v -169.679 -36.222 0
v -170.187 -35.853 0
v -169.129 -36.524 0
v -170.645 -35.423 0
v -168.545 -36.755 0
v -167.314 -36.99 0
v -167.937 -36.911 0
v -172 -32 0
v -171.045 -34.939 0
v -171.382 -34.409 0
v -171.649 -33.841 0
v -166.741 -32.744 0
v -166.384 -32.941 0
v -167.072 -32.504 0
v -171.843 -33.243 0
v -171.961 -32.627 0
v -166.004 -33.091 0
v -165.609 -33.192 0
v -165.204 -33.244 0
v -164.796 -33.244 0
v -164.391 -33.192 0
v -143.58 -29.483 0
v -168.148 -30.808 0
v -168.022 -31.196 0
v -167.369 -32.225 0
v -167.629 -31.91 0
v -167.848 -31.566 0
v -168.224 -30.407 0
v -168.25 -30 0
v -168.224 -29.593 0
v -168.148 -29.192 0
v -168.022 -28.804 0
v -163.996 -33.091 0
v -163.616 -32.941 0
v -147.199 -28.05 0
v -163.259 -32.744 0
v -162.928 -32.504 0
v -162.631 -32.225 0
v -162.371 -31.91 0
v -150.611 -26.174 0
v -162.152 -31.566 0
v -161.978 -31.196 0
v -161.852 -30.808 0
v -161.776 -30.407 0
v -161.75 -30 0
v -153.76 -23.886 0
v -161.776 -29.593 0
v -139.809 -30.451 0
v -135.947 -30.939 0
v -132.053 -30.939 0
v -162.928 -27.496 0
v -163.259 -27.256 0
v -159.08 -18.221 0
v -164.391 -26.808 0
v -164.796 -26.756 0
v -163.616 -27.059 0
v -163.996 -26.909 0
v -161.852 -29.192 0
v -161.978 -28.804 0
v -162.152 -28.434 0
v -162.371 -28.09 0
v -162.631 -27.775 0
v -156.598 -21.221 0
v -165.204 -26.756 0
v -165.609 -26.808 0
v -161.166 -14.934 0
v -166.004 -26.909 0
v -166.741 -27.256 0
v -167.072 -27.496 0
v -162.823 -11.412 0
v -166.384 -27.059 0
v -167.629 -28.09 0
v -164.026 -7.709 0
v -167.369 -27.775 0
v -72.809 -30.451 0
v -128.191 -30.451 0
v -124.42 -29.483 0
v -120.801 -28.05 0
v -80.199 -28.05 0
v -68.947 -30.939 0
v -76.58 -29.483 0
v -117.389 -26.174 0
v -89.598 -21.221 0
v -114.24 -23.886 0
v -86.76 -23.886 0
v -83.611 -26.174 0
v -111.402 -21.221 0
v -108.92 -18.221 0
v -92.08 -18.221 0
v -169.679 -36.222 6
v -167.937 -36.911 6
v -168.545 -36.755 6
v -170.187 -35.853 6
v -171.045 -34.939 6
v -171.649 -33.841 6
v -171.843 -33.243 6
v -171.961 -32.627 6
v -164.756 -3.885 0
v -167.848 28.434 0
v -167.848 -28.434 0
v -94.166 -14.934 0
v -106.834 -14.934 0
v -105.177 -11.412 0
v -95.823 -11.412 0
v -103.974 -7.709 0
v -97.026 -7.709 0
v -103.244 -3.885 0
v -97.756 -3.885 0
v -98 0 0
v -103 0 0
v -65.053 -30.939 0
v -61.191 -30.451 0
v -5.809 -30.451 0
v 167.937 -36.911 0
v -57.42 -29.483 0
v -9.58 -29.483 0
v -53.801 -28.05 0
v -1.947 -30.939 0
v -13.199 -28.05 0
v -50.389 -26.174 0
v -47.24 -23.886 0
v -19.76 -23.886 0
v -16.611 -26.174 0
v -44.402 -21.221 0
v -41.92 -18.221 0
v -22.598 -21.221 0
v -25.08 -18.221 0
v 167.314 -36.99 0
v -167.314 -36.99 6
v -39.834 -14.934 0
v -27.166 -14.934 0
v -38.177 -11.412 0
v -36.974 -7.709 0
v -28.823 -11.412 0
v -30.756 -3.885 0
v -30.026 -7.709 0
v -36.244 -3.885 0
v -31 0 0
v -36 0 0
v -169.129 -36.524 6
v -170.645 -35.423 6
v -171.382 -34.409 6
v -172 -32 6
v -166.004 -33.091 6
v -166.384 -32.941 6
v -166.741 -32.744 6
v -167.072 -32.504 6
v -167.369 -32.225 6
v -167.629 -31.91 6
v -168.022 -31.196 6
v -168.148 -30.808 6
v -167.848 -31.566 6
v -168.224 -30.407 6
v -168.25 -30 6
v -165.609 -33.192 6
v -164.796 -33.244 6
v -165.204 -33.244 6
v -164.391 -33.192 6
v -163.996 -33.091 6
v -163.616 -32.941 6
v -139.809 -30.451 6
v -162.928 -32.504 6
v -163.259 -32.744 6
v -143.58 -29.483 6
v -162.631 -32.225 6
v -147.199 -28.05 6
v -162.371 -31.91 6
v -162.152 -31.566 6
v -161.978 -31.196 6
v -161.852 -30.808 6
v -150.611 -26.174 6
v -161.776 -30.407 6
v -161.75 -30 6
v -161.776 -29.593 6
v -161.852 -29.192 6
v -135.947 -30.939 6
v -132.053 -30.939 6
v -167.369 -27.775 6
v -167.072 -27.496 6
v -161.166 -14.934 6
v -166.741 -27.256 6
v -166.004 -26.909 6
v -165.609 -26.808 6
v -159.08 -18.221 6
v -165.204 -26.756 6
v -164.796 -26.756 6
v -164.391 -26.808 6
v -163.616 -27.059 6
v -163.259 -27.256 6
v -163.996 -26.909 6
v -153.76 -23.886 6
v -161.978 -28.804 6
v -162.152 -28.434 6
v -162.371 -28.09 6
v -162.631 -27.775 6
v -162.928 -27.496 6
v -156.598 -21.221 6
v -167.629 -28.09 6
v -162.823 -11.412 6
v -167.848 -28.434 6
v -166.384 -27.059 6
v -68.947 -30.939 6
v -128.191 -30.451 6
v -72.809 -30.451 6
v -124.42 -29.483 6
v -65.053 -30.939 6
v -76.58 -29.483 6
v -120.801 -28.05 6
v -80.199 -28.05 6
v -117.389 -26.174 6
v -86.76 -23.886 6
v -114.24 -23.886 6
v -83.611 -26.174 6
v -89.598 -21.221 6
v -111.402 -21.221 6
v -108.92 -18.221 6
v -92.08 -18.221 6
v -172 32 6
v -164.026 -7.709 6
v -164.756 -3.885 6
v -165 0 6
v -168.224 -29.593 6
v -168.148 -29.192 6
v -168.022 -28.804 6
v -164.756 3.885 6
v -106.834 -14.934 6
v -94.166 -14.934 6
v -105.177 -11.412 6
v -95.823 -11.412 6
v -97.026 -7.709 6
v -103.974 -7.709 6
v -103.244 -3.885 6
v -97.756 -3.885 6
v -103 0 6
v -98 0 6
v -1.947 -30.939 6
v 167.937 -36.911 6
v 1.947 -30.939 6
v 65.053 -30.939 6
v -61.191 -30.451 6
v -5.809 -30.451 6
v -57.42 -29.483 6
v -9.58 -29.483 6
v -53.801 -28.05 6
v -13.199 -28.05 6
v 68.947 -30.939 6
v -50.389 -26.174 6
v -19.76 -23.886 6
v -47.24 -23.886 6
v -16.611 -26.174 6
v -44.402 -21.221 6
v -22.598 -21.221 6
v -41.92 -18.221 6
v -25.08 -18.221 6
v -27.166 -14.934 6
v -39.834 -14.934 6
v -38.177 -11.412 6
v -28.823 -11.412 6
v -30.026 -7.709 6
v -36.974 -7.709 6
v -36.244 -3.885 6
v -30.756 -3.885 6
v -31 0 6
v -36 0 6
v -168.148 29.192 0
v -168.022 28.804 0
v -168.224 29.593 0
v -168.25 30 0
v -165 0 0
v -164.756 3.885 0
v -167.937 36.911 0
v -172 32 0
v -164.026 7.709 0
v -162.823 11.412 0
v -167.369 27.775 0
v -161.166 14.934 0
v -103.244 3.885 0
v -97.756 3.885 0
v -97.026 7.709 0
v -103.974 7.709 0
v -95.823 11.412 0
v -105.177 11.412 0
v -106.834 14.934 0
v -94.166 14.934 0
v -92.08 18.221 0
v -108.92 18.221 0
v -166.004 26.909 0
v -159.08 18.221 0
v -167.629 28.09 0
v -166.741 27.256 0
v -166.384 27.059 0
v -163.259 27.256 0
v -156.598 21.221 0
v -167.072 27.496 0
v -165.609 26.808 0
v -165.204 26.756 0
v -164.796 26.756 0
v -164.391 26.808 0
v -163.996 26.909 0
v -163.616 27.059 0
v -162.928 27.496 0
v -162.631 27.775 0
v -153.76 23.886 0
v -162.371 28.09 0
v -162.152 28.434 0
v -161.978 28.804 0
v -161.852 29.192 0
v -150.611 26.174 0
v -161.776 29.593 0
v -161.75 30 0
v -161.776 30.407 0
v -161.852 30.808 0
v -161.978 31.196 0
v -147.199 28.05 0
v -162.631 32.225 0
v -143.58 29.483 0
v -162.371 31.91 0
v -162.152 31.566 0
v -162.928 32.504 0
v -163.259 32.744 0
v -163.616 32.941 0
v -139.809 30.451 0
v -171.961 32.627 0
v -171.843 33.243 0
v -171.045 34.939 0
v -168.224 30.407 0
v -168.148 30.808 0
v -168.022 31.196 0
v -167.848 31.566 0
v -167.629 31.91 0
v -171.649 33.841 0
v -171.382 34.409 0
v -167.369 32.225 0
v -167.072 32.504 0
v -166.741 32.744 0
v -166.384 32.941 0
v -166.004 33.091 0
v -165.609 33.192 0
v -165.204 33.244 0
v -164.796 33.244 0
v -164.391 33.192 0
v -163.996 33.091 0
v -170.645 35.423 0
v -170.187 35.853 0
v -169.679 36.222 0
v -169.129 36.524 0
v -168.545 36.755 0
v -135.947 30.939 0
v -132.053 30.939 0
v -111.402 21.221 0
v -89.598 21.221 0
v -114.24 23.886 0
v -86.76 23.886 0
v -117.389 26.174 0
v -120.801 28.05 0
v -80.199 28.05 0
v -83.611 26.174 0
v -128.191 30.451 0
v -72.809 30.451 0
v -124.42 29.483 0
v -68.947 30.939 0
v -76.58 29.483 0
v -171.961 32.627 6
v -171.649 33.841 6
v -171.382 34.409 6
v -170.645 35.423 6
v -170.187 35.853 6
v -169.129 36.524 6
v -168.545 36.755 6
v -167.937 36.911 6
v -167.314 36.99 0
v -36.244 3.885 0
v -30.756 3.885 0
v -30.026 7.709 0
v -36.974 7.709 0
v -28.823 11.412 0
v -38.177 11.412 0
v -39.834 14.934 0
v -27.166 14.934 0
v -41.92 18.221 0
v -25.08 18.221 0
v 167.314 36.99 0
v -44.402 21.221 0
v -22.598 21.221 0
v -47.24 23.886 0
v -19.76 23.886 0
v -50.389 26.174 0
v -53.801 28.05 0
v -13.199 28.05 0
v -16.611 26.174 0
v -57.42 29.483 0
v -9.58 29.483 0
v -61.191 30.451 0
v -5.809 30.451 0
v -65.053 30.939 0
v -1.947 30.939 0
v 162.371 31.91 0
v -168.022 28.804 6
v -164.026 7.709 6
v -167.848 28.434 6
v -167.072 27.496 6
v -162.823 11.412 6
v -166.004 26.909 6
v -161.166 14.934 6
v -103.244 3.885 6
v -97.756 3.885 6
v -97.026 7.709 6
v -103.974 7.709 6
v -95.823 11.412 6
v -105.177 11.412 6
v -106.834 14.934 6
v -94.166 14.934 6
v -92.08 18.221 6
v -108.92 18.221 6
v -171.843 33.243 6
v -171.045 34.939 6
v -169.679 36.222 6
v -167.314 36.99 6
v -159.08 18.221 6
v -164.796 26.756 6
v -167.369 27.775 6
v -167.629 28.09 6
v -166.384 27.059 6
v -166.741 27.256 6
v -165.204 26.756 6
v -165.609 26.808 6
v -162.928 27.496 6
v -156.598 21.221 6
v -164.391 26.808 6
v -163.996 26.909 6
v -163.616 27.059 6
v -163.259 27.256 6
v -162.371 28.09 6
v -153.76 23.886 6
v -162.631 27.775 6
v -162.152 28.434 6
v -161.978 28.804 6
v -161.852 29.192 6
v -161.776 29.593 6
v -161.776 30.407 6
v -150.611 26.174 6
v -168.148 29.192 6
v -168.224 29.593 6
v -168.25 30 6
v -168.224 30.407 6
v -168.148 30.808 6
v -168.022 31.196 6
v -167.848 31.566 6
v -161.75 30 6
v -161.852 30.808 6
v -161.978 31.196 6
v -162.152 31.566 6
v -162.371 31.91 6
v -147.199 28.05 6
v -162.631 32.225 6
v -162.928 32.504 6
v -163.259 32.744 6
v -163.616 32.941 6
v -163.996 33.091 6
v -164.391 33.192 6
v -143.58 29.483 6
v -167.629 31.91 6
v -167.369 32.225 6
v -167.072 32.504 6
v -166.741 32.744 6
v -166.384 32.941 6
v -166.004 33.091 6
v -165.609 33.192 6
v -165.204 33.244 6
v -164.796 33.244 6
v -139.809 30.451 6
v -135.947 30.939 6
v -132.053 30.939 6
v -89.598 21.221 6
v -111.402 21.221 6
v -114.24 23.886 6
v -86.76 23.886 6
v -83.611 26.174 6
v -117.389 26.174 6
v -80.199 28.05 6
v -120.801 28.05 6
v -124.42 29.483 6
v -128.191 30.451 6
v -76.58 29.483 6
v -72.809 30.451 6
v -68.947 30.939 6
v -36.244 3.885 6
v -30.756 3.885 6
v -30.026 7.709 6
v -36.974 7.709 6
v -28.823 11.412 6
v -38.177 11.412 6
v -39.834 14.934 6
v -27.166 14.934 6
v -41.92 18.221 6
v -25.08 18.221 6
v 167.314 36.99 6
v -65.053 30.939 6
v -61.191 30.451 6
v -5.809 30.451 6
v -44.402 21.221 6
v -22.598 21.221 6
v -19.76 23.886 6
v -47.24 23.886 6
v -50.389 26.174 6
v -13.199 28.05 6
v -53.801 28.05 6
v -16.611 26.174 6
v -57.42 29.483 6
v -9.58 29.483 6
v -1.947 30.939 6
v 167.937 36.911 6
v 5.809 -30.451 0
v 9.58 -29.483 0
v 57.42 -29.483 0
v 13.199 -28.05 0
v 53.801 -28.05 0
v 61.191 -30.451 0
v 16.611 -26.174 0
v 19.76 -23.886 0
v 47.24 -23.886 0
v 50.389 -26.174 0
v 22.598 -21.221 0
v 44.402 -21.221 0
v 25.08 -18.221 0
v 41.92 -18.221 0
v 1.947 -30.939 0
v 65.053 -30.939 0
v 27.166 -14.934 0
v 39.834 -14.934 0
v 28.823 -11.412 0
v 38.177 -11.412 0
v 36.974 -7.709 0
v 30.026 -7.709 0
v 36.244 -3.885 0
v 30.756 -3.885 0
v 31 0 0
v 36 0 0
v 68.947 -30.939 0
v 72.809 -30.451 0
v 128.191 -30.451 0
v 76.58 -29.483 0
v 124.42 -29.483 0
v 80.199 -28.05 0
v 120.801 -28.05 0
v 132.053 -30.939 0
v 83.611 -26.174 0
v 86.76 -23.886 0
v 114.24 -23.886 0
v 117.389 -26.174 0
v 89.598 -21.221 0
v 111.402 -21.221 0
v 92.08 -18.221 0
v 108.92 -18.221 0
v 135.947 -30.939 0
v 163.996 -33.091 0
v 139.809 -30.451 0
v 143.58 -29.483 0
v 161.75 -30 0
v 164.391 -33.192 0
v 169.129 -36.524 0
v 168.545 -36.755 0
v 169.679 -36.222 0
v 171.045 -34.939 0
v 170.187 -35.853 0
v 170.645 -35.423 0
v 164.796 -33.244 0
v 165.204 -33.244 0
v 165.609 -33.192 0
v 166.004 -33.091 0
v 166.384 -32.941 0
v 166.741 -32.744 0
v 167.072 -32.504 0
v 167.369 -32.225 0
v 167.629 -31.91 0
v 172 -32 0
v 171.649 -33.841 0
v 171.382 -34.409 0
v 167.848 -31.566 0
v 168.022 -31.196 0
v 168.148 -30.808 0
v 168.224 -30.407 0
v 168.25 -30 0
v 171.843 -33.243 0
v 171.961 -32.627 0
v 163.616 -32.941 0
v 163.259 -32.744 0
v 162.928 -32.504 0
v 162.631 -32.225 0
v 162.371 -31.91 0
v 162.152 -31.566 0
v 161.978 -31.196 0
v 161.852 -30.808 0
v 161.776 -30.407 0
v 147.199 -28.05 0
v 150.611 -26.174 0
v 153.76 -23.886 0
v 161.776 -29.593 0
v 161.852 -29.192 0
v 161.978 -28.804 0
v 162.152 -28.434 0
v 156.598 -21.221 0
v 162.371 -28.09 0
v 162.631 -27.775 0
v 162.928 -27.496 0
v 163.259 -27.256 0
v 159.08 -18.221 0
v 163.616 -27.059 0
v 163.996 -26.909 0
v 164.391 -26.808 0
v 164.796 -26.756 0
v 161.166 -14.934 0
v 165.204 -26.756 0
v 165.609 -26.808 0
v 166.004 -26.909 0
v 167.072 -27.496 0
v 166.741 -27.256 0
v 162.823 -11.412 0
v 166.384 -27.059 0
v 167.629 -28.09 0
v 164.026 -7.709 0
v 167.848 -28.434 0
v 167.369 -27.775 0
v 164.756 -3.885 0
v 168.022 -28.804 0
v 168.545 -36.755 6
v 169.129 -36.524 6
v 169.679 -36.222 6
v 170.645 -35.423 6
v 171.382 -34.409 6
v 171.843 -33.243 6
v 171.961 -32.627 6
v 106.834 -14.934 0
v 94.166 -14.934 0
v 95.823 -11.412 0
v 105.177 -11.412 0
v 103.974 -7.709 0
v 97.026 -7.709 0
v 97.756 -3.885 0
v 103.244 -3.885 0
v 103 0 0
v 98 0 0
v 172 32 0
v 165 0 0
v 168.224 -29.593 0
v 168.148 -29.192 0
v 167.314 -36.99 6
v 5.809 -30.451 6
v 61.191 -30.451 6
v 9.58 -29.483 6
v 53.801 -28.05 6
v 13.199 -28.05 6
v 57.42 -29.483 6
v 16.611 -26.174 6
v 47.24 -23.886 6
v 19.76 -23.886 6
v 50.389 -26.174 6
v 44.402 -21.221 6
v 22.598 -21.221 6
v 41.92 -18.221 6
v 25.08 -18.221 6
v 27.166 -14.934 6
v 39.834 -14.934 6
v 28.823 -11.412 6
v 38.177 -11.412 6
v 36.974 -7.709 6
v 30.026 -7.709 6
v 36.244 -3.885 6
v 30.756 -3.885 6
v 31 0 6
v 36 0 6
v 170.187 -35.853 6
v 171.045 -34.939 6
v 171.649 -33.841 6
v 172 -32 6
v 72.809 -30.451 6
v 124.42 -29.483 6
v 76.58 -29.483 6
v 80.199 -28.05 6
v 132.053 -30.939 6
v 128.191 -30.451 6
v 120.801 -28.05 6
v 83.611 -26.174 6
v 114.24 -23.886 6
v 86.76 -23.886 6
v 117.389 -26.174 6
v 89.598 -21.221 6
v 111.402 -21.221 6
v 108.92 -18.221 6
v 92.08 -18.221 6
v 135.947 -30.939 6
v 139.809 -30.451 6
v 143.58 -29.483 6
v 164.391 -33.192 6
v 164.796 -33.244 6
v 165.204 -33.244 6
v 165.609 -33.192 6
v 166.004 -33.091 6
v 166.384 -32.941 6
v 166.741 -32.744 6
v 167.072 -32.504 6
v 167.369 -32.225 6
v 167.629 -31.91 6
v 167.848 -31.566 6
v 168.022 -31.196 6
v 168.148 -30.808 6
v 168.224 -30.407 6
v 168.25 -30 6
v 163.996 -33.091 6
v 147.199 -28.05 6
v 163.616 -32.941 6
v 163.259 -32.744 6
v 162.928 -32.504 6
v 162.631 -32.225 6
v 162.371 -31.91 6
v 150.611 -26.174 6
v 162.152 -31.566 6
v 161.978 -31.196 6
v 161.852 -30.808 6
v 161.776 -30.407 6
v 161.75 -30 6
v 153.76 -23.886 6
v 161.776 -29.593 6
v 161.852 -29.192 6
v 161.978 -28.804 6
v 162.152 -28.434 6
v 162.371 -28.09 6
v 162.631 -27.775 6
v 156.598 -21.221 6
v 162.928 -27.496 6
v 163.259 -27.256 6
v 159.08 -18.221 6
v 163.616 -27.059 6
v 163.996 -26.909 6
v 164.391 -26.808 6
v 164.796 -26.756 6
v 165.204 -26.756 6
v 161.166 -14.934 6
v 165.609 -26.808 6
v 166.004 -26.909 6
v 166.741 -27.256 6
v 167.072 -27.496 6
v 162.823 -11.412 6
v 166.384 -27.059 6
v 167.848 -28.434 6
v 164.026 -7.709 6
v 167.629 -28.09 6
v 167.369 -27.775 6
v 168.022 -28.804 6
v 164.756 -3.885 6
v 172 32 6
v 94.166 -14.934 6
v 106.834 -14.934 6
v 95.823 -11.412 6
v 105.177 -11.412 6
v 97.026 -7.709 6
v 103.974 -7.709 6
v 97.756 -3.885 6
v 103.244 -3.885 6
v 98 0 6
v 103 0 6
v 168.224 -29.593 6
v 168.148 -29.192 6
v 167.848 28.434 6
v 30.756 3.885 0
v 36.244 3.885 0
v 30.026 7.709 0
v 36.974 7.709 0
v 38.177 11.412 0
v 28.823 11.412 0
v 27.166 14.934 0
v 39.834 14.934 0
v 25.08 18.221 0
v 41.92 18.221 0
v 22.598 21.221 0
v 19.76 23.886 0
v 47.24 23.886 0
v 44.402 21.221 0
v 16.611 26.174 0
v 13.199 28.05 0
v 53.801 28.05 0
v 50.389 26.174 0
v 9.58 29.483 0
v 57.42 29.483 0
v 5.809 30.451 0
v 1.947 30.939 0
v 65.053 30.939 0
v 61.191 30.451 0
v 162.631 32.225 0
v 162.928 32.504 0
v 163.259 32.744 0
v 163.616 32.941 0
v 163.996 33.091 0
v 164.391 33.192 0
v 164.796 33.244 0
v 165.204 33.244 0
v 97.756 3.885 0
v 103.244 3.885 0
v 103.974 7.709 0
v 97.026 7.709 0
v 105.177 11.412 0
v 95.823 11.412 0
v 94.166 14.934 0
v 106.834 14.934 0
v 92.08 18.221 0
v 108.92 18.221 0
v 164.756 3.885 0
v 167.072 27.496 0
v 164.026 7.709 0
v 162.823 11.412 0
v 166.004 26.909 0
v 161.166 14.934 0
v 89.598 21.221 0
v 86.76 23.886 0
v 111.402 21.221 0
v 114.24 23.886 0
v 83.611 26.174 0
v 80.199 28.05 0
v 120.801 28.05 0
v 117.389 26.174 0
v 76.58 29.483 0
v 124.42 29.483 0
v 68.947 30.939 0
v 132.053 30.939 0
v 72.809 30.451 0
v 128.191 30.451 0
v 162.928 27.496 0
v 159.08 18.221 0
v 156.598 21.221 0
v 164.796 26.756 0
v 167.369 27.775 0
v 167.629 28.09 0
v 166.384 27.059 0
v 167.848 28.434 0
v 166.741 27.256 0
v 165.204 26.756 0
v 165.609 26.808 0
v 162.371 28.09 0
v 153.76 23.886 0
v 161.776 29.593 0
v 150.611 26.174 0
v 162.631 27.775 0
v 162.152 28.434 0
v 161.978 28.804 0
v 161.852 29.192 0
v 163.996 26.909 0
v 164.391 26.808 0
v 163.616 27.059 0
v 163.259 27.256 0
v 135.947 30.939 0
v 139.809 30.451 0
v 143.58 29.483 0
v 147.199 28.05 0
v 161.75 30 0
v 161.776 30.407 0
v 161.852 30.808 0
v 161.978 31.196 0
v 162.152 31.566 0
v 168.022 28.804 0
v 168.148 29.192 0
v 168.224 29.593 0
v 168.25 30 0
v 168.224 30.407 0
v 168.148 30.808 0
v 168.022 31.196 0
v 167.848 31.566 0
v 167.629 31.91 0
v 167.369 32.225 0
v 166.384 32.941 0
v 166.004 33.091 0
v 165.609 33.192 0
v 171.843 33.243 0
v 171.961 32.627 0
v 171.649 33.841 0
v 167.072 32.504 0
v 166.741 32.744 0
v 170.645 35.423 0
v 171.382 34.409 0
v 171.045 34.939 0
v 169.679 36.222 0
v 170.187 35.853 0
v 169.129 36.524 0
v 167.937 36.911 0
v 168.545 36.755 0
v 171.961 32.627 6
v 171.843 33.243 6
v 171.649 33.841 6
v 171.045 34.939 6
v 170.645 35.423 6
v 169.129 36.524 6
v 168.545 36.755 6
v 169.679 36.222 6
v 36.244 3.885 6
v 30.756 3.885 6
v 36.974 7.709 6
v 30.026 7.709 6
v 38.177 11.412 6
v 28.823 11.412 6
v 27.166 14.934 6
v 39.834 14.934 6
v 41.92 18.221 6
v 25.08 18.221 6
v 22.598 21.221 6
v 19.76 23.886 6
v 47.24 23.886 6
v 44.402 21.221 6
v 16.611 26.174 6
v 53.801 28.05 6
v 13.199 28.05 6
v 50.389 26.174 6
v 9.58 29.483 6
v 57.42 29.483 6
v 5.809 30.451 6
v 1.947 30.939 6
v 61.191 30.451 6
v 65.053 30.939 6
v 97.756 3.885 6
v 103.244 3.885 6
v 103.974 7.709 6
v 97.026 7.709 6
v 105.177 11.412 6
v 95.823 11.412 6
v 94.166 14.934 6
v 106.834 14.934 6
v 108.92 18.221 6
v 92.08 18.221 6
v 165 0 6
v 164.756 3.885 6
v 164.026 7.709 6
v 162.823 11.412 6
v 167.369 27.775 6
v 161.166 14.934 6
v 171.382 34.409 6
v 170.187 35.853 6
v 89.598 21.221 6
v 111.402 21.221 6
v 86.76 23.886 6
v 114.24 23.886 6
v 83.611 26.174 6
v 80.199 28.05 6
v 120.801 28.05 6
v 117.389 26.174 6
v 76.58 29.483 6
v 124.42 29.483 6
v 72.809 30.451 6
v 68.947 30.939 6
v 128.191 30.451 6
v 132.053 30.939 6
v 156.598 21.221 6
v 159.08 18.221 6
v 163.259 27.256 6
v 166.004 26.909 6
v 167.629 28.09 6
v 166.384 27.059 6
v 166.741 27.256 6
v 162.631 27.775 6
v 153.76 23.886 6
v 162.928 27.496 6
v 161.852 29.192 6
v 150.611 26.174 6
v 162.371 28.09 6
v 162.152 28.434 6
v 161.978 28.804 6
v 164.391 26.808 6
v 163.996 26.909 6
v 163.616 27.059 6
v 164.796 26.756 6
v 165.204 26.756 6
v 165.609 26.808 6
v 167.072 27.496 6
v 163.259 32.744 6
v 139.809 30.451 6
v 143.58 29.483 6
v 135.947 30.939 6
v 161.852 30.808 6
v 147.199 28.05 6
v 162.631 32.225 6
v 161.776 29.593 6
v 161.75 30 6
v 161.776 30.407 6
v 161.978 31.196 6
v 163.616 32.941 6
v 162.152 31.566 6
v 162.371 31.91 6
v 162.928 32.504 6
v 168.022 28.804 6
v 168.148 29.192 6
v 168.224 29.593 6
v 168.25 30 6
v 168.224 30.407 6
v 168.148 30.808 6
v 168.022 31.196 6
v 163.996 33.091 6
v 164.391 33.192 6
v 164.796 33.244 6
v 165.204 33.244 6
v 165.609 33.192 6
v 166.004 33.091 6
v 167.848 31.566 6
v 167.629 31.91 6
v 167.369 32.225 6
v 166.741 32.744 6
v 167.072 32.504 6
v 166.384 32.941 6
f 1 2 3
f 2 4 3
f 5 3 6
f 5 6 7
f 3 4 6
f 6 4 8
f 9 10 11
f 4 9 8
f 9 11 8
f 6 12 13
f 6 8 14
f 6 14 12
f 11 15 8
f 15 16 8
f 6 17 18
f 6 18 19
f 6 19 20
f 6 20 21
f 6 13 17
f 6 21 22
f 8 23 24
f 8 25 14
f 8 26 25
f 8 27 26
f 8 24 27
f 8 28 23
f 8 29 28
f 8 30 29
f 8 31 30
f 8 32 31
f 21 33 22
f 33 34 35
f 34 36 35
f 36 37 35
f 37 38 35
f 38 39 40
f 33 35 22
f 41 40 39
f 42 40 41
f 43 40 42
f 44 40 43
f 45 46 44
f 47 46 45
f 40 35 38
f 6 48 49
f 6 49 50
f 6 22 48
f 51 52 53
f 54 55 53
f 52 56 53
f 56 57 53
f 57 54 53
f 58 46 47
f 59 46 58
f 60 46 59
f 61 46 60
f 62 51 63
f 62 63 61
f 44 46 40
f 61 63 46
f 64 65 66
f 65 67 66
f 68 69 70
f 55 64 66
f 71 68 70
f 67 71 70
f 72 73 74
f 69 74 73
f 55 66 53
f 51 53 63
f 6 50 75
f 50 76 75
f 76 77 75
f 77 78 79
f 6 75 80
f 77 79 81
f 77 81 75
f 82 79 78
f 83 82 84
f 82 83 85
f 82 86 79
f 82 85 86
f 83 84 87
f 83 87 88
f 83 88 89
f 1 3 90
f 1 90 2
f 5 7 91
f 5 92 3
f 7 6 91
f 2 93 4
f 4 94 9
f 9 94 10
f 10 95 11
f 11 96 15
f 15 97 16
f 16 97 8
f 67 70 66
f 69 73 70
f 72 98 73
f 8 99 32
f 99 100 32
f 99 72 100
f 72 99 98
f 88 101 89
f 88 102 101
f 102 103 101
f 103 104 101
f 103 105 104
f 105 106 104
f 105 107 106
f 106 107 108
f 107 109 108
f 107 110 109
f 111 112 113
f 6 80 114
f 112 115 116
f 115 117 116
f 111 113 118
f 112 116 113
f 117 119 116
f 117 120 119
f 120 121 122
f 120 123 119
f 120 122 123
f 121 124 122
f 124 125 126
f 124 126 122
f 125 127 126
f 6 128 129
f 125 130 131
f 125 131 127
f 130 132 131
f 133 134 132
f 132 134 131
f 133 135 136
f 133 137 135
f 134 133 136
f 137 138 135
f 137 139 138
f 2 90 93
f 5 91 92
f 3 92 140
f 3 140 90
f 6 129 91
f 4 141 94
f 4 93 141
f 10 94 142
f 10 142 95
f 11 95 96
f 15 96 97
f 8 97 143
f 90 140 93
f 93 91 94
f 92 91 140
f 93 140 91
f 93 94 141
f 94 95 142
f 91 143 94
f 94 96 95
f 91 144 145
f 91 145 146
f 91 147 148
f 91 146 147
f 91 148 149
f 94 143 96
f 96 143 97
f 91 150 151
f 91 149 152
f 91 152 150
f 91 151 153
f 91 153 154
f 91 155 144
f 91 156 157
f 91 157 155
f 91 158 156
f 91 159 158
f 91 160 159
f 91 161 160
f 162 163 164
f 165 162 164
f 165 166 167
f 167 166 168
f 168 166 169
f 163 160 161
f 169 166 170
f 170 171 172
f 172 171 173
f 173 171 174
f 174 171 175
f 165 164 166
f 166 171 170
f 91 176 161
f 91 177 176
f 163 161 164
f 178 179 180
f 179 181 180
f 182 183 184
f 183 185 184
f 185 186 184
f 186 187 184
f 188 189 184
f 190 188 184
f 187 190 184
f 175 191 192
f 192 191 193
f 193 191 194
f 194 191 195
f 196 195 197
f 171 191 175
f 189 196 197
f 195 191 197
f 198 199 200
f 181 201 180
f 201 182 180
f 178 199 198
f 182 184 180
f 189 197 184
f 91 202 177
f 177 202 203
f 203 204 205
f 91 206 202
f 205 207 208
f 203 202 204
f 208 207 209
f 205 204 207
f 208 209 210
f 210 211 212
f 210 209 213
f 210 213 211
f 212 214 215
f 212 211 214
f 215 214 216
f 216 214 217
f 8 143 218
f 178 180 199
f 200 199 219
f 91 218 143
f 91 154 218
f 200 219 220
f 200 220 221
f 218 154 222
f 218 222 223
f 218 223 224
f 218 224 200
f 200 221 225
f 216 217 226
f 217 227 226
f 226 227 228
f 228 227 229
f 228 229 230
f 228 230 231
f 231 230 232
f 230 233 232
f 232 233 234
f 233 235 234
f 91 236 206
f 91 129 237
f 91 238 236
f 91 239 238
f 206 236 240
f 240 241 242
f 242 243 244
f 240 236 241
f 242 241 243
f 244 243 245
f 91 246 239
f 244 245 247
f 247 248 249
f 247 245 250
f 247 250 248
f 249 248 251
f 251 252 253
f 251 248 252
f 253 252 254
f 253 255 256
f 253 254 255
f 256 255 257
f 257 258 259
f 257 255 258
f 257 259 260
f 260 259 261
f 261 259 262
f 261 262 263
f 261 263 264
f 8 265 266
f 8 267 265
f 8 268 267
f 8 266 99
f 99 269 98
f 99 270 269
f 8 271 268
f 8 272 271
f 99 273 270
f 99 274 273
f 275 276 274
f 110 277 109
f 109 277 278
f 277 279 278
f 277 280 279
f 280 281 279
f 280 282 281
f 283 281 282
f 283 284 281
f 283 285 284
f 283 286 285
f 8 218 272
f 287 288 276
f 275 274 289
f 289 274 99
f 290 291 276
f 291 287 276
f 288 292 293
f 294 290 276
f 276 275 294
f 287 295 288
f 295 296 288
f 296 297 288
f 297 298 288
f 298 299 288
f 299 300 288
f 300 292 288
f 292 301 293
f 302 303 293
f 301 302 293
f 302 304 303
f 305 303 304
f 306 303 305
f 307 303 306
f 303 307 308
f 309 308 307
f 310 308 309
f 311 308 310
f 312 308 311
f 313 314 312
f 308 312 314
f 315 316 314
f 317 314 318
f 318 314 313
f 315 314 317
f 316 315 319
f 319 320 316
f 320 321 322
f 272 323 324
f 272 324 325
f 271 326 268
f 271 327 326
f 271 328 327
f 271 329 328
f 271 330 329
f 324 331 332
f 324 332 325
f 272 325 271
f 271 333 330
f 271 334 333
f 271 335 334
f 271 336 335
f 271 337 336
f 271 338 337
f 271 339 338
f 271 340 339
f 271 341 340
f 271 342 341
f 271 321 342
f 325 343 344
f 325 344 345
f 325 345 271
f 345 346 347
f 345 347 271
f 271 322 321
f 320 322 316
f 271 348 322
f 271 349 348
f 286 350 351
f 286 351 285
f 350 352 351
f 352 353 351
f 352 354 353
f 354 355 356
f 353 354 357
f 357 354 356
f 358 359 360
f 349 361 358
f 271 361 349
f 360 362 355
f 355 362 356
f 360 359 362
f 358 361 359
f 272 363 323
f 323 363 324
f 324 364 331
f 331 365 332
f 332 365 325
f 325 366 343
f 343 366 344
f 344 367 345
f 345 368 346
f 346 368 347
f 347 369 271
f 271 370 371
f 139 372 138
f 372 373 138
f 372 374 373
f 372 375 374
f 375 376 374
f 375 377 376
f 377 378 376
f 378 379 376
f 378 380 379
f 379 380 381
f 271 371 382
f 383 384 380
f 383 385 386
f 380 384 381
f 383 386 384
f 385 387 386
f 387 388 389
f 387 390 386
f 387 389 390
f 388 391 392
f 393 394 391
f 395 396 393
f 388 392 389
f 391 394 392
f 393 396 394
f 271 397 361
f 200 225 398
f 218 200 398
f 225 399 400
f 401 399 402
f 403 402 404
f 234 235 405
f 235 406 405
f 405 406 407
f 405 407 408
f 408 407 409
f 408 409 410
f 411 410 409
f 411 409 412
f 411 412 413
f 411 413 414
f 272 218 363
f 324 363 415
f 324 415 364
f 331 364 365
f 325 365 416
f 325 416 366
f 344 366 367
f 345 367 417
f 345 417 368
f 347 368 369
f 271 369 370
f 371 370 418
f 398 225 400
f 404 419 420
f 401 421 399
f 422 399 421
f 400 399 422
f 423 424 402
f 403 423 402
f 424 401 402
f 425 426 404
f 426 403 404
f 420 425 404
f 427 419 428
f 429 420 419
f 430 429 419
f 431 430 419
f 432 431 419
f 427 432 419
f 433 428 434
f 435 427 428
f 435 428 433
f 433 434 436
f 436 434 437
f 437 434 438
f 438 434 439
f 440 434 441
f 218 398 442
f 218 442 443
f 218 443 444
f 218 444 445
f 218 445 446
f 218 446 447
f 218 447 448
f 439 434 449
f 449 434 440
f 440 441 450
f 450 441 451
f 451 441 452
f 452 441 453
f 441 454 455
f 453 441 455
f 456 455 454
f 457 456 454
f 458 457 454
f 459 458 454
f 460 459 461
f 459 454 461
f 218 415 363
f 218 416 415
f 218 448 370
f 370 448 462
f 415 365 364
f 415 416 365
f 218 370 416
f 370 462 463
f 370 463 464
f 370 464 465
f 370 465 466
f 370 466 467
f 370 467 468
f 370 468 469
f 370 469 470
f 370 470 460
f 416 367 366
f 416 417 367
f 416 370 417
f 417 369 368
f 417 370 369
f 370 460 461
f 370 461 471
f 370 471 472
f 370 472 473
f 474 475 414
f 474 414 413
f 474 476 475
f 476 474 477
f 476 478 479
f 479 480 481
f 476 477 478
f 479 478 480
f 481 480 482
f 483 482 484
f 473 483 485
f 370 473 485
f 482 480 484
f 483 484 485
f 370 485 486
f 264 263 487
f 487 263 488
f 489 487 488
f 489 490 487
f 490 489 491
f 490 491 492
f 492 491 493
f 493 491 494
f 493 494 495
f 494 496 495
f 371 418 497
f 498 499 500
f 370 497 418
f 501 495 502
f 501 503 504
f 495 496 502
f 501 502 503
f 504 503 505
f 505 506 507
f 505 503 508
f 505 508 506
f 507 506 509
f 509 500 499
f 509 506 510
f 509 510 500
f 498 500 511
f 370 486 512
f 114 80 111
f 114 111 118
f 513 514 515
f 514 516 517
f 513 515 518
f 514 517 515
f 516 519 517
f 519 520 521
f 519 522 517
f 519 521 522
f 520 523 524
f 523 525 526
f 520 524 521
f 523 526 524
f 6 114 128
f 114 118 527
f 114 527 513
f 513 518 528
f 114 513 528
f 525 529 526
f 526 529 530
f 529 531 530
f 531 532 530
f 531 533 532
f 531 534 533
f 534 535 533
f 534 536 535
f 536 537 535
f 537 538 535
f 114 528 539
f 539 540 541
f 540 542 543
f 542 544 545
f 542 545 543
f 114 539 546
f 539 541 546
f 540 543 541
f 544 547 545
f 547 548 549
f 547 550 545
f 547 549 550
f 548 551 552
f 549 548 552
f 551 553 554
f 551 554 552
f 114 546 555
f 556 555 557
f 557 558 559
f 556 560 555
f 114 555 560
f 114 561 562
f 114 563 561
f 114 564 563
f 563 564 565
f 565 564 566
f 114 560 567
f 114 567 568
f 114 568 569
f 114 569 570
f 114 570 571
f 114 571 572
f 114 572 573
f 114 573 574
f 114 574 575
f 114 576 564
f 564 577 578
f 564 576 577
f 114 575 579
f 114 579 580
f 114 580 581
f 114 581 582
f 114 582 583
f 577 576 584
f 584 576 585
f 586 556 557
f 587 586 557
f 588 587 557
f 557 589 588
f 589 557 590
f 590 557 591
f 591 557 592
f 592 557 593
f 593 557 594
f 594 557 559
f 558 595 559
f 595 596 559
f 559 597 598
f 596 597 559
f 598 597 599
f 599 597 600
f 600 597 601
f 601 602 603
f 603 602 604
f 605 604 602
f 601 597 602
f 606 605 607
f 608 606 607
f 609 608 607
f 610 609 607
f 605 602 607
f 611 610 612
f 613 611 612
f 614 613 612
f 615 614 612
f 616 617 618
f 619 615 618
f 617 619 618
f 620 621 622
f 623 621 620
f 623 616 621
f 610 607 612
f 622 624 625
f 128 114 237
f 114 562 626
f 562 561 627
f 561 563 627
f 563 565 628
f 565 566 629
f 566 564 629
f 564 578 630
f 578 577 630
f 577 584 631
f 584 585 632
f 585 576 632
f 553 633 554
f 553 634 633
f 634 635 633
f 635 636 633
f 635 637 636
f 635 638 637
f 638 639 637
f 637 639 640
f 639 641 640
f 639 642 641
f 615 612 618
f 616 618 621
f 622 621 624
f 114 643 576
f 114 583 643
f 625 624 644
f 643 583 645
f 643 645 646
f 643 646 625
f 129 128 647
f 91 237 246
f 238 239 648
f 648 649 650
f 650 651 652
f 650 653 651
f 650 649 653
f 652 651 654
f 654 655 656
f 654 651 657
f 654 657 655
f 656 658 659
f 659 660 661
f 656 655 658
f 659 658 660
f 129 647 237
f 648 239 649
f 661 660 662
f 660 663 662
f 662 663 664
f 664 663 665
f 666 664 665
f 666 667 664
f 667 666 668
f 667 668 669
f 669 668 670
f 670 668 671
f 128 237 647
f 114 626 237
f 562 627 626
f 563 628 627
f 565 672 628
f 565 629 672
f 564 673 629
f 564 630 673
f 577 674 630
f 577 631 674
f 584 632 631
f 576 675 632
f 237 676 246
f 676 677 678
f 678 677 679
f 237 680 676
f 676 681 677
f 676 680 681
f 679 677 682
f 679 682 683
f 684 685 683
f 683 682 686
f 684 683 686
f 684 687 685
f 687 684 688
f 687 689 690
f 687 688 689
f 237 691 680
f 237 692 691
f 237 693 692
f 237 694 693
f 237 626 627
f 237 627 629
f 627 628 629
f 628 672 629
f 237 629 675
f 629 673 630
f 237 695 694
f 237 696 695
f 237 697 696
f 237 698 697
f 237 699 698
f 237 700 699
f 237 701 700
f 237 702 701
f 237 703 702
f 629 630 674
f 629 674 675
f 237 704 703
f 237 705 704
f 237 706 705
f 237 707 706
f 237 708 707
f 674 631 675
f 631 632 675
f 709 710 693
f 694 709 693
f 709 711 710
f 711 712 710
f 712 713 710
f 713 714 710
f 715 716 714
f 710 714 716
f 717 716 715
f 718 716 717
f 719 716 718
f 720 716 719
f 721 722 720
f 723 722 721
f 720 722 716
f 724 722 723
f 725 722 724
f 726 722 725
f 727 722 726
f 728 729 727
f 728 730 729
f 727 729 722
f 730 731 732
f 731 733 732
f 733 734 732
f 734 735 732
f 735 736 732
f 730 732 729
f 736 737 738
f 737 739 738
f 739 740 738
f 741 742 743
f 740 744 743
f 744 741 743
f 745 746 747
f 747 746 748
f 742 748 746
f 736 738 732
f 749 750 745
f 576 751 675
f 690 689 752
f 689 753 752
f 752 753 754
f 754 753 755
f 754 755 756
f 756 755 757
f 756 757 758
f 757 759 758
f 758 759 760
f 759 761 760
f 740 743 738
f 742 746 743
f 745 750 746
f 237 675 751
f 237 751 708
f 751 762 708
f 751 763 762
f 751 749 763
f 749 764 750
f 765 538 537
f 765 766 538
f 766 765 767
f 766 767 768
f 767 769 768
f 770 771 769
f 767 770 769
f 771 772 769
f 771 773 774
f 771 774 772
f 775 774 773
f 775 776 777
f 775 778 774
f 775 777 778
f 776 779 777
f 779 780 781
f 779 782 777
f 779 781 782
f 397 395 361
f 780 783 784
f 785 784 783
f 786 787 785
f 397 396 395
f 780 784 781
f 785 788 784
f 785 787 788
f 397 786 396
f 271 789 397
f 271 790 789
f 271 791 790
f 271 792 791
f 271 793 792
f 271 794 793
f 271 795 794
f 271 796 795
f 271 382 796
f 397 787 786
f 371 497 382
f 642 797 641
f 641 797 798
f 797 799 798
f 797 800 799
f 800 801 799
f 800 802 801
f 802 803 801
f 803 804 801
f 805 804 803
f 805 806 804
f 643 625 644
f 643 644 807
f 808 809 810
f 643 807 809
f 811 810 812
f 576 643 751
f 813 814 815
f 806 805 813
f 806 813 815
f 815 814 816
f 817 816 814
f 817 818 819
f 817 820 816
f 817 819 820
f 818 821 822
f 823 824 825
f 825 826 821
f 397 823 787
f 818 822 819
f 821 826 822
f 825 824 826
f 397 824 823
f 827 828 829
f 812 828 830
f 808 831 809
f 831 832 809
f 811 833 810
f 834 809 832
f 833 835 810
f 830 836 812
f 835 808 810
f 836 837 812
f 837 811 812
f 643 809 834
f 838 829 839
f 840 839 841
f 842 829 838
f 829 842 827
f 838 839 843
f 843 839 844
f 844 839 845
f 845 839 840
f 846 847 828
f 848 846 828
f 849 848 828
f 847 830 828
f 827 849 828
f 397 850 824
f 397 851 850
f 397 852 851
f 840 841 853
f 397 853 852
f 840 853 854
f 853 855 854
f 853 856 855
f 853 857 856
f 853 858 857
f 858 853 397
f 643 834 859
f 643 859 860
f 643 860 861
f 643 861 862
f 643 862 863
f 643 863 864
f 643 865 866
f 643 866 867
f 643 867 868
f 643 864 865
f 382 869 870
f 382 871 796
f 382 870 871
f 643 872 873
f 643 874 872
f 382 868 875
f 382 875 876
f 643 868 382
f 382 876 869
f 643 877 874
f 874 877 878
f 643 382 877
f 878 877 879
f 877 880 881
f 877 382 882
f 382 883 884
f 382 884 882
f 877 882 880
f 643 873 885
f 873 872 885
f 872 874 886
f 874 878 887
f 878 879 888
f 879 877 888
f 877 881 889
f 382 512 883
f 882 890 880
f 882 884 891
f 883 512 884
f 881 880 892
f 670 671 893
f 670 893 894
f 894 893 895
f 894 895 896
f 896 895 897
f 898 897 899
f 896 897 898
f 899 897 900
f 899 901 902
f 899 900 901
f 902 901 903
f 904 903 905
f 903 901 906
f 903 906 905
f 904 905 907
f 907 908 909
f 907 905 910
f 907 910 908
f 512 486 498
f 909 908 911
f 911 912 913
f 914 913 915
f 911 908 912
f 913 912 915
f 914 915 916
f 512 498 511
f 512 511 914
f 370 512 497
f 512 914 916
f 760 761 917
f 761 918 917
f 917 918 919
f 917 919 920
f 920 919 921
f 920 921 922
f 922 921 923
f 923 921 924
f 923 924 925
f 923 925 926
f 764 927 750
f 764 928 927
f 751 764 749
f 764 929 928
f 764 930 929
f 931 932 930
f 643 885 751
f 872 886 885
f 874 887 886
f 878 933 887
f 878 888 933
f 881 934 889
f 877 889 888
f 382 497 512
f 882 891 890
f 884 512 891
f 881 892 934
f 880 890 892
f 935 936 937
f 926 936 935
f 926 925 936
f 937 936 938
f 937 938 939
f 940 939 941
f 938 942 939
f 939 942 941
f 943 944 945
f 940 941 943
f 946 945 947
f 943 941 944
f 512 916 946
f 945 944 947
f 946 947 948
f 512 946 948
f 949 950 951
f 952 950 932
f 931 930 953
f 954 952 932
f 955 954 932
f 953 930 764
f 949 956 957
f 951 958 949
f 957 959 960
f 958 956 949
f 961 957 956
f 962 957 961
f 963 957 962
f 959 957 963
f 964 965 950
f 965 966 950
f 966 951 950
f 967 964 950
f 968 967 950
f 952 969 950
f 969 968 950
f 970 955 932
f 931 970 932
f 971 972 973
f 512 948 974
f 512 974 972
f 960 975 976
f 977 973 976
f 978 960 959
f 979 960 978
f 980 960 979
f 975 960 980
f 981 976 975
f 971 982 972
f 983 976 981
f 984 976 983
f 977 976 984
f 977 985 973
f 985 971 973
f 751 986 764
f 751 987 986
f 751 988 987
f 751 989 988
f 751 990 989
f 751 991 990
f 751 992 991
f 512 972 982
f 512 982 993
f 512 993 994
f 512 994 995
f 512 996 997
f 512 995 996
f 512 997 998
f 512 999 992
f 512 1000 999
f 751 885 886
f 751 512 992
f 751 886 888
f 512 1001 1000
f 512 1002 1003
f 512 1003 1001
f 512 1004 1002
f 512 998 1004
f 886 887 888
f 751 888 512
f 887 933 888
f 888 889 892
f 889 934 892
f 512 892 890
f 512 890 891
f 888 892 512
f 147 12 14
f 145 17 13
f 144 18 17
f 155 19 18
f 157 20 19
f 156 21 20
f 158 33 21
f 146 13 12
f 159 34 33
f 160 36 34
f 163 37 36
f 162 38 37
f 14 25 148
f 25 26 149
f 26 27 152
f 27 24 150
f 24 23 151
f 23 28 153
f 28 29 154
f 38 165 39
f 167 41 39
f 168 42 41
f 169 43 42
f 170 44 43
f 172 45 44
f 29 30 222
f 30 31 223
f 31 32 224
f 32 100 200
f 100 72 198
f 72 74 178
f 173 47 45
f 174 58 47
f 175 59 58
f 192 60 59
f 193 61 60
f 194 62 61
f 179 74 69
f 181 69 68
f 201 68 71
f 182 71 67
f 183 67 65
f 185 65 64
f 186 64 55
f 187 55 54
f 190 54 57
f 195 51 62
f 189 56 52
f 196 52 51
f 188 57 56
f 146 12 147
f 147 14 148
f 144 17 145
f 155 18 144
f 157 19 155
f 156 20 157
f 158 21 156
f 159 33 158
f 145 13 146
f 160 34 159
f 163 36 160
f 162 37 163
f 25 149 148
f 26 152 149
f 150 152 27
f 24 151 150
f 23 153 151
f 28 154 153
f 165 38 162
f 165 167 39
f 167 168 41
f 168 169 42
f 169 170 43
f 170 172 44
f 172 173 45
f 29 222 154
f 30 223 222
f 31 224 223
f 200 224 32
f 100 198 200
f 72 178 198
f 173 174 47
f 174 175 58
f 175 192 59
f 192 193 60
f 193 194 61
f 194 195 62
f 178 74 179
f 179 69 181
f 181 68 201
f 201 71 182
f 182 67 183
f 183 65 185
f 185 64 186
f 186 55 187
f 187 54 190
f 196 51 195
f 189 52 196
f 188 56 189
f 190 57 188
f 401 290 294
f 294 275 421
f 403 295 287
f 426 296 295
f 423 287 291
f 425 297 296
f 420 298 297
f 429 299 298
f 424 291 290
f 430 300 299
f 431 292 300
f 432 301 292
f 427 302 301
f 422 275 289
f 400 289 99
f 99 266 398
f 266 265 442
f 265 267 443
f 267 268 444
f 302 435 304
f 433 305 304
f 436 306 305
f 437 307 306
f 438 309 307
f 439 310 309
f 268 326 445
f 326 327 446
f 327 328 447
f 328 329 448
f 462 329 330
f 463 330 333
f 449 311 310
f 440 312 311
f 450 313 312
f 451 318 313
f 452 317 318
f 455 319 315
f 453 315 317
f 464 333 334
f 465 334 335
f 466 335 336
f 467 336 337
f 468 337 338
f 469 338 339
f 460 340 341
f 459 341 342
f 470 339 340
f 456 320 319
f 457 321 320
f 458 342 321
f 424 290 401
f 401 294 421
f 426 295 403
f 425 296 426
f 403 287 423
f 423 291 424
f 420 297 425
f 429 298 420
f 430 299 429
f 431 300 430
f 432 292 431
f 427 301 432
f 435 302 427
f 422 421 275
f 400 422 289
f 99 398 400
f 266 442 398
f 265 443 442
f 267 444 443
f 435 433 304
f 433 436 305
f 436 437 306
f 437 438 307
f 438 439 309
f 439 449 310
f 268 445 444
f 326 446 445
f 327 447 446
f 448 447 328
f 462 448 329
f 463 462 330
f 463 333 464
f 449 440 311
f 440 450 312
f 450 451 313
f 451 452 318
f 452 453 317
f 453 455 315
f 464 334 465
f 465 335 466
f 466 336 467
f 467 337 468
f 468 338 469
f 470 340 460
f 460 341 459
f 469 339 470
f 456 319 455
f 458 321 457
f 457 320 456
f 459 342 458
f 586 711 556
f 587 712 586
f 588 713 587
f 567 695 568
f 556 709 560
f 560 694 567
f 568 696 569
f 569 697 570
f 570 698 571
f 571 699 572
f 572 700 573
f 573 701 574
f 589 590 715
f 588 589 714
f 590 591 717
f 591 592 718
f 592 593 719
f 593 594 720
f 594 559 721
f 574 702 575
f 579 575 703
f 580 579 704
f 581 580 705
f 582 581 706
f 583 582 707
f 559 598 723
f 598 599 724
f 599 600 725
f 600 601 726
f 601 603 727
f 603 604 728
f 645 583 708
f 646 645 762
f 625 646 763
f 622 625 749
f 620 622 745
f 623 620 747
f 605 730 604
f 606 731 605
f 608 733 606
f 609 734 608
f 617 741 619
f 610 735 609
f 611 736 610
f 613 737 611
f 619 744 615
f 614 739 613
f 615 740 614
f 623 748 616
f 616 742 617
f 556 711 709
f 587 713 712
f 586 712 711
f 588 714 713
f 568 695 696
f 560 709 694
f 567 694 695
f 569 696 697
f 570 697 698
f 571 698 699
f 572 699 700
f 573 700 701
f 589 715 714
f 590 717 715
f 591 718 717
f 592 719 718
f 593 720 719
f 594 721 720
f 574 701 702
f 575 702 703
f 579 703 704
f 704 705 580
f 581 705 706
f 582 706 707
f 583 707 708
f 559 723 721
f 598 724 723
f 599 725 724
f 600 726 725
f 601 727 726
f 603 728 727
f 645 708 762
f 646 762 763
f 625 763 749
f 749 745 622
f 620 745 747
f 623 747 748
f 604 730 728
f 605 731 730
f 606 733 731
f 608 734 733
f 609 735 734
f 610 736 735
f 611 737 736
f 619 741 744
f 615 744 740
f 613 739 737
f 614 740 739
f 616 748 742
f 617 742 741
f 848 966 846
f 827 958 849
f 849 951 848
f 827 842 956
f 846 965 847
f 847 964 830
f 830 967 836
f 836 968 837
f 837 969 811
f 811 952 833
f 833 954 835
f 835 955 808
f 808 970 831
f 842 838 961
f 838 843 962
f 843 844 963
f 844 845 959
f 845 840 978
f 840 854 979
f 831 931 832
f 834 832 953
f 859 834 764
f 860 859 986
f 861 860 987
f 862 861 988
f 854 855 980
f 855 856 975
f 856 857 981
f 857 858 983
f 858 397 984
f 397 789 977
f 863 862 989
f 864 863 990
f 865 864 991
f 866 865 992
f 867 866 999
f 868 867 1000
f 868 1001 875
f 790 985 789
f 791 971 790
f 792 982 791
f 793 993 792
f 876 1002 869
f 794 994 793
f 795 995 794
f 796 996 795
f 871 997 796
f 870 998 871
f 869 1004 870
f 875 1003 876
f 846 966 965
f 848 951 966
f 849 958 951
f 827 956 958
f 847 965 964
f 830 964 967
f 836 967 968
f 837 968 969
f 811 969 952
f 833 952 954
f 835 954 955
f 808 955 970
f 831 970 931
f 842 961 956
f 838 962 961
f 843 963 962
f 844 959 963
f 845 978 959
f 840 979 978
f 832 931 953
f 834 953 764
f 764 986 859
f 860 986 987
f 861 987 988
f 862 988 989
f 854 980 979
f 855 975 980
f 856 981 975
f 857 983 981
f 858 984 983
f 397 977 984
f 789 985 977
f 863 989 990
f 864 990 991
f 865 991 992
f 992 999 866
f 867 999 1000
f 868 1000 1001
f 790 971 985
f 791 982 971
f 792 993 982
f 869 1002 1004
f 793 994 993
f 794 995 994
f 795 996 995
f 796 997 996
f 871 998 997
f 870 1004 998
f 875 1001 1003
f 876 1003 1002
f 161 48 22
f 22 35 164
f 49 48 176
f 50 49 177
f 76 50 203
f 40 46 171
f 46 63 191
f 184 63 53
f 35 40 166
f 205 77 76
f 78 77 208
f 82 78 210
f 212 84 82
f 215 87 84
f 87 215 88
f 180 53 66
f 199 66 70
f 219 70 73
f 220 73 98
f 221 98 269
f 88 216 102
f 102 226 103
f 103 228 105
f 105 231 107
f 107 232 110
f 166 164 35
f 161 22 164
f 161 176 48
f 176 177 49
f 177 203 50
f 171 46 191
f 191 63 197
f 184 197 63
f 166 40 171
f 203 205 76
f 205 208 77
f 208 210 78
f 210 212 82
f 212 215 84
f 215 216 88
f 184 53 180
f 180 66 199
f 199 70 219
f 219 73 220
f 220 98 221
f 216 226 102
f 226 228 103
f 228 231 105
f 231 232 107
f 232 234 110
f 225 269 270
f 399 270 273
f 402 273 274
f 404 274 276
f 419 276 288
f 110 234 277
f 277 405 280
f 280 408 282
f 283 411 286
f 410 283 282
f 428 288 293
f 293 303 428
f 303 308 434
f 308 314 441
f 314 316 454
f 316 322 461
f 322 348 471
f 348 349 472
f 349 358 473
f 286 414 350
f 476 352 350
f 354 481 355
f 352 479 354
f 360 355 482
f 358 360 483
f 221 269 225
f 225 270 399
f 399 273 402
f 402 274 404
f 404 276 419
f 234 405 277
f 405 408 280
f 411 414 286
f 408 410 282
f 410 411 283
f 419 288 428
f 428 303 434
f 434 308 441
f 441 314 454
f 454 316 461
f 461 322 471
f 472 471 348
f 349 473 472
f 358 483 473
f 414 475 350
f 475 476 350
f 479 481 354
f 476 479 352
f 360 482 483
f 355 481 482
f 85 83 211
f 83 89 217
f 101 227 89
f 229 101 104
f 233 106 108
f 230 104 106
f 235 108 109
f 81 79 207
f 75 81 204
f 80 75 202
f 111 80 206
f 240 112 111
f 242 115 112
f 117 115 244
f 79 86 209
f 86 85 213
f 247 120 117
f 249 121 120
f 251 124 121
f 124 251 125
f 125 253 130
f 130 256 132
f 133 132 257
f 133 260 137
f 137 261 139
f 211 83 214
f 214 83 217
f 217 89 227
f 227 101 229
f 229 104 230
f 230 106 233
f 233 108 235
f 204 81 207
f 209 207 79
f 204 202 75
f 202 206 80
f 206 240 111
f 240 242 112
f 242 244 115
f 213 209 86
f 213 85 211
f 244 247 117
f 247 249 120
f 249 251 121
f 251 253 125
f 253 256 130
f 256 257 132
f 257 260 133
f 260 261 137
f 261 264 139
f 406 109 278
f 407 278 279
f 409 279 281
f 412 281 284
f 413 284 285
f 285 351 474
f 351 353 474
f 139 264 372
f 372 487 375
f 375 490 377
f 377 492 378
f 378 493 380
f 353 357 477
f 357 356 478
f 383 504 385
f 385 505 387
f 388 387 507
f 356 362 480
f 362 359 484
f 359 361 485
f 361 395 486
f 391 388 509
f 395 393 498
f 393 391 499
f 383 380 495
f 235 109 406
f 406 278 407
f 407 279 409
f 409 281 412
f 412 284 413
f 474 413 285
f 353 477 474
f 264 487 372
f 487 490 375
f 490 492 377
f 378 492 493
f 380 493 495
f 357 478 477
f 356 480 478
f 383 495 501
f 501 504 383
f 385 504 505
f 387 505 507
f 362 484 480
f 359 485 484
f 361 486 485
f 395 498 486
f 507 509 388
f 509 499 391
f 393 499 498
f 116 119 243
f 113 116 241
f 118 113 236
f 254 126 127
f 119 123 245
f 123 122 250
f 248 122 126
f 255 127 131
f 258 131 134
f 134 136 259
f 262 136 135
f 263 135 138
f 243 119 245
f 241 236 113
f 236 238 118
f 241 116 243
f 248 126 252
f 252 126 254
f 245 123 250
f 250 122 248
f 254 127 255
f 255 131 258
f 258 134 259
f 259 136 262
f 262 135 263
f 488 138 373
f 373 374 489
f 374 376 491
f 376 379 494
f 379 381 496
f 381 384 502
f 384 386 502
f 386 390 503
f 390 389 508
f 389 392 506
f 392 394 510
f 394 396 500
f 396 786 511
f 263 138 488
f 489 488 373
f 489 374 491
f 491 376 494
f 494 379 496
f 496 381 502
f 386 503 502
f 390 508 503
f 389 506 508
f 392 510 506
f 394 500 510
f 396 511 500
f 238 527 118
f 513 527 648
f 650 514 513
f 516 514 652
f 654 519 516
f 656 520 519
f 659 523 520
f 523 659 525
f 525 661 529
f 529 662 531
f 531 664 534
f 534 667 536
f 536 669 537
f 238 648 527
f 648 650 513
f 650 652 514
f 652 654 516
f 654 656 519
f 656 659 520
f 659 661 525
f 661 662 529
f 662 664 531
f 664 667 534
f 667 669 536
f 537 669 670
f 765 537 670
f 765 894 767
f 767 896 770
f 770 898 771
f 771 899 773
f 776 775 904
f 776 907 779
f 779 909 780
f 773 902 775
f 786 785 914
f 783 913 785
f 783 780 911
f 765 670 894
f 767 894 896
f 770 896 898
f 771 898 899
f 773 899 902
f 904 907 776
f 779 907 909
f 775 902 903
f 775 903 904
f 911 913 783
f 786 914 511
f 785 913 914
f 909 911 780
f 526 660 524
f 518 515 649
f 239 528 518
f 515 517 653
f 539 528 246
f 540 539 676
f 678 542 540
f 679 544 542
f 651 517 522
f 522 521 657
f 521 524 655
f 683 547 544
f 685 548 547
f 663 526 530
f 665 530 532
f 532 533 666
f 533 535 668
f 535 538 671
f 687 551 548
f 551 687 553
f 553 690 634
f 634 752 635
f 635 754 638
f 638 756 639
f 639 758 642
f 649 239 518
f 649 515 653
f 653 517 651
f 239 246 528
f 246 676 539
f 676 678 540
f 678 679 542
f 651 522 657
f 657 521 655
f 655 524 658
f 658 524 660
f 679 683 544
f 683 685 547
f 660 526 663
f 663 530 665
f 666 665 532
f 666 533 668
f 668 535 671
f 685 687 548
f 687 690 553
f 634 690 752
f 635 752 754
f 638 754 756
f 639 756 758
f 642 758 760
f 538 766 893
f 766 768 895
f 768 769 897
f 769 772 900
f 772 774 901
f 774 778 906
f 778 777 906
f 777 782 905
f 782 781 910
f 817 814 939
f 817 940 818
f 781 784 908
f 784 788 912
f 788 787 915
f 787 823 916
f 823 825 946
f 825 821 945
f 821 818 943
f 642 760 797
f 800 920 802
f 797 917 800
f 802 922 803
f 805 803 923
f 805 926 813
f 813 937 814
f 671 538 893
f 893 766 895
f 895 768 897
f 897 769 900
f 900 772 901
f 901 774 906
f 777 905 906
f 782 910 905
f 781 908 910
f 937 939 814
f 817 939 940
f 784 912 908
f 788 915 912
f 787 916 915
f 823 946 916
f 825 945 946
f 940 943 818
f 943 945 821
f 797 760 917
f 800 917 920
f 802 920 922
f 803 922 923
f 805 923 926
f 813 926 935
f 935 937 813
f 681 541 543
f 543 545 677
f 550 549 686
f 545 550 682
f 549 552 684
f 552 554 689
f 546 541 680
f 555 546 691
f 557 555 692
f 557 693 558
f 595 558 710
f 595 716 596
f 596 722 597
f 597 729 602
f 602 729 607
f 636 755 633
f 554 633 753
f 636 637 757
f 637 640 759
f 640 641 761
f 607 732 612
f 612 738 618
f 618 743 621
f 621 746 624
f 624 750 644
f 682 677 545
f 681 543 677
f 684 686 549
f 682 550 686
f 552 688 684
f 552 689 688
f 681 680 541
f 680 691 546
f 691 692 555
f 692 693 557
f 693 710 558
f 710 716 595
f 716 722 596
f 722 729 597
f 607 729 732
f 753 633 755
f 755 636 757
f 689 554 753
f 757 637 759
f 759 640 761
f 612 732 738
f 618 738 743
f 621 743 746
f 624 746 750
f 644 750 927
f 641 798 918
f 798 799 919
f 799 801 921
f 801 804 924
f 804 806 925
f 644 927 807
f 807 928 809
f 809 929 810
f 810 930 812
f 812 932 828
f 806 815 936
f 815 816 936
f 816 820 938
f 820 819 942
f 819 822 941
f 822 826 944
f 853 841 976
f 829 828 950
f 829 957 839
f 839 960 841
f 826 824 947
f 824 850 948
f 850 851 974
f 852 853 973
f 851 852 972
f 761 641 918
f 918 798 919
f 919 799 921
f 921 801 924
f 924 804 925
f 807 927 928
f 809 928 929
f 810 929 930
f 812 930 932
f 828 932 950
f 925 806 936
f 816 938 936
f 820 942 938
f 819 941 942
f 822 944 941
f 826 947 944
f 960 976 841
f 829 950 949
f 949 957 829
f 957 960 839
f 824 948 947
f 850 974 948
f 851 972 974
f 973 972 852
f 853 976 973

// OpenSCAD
$fn = 50;

difference() {
	union() {
		hull() {
			translate(v = [-167.0, 32.0, 0]) {
				cylinder(h = 6, r = 5);
			}
			translate(v = [167.0, 32.0, 0]) {
				cylinder(h = 6, r = 5);
			}
			translate(v = [-167.0, -32.0, 0]) {
				cylinder(h = 6, r = 5);
			}
			translate(v = [167.0, -32.0, 0]) {
				cylinder(h = 6, r = 5);
			}
		}
	}
	union() {
		translate(v = [-165.0, -30.0, -100.0]) {
			cylinder(h = 200, r = 3.25);
		}
		translate(v = [-165.0, 30.0, -100.0]) {
			cylinder(h = 200, r = 3.25);
		}
		translate(v = [165.0, -30.0, -100.0]) {
			cylinder(h = 200, r = 3.25);
		}
		translate(v = [165.0, 30.0, -100.0]) {
			cylinder(h = 200, r = 3.25);
		}
		translate(v = [-165.0, -30.0, -100.0]) {
			cylinder(h = 200, r = 1.8);
		}
		translate(v = [-165.0, 30.0, -100.0]) {
			cylinder(h = 200, r = 1.8);
		}
		translate(v = [165.0, -30.0, -100.0]) {
			cylinder(h = 200, r = 1.8);
		}
		translate(v = [165.0, 30.0, -100.0]) {
			cylinder(h = 200, r = 1.8);
		}
		translate(v = [-134.0, 0, 0.0]) {
			cylinder(h = 6, r = 31.0);
		}
		translate(v = [-67.0, 0, 0.0]) {
			cylinder(h = 6, r = 31.0);
		}
		cylinder(h = 6, r = 31.0);
		translate(v = [67.0, 0, 0.0]) {
			cylinder(h = 6, r = 31.0);
		}
		translate(v = [134.0, 0, 0.0]) {
			cylinder(h = 6, r = 31.0);
		}
	}
}
